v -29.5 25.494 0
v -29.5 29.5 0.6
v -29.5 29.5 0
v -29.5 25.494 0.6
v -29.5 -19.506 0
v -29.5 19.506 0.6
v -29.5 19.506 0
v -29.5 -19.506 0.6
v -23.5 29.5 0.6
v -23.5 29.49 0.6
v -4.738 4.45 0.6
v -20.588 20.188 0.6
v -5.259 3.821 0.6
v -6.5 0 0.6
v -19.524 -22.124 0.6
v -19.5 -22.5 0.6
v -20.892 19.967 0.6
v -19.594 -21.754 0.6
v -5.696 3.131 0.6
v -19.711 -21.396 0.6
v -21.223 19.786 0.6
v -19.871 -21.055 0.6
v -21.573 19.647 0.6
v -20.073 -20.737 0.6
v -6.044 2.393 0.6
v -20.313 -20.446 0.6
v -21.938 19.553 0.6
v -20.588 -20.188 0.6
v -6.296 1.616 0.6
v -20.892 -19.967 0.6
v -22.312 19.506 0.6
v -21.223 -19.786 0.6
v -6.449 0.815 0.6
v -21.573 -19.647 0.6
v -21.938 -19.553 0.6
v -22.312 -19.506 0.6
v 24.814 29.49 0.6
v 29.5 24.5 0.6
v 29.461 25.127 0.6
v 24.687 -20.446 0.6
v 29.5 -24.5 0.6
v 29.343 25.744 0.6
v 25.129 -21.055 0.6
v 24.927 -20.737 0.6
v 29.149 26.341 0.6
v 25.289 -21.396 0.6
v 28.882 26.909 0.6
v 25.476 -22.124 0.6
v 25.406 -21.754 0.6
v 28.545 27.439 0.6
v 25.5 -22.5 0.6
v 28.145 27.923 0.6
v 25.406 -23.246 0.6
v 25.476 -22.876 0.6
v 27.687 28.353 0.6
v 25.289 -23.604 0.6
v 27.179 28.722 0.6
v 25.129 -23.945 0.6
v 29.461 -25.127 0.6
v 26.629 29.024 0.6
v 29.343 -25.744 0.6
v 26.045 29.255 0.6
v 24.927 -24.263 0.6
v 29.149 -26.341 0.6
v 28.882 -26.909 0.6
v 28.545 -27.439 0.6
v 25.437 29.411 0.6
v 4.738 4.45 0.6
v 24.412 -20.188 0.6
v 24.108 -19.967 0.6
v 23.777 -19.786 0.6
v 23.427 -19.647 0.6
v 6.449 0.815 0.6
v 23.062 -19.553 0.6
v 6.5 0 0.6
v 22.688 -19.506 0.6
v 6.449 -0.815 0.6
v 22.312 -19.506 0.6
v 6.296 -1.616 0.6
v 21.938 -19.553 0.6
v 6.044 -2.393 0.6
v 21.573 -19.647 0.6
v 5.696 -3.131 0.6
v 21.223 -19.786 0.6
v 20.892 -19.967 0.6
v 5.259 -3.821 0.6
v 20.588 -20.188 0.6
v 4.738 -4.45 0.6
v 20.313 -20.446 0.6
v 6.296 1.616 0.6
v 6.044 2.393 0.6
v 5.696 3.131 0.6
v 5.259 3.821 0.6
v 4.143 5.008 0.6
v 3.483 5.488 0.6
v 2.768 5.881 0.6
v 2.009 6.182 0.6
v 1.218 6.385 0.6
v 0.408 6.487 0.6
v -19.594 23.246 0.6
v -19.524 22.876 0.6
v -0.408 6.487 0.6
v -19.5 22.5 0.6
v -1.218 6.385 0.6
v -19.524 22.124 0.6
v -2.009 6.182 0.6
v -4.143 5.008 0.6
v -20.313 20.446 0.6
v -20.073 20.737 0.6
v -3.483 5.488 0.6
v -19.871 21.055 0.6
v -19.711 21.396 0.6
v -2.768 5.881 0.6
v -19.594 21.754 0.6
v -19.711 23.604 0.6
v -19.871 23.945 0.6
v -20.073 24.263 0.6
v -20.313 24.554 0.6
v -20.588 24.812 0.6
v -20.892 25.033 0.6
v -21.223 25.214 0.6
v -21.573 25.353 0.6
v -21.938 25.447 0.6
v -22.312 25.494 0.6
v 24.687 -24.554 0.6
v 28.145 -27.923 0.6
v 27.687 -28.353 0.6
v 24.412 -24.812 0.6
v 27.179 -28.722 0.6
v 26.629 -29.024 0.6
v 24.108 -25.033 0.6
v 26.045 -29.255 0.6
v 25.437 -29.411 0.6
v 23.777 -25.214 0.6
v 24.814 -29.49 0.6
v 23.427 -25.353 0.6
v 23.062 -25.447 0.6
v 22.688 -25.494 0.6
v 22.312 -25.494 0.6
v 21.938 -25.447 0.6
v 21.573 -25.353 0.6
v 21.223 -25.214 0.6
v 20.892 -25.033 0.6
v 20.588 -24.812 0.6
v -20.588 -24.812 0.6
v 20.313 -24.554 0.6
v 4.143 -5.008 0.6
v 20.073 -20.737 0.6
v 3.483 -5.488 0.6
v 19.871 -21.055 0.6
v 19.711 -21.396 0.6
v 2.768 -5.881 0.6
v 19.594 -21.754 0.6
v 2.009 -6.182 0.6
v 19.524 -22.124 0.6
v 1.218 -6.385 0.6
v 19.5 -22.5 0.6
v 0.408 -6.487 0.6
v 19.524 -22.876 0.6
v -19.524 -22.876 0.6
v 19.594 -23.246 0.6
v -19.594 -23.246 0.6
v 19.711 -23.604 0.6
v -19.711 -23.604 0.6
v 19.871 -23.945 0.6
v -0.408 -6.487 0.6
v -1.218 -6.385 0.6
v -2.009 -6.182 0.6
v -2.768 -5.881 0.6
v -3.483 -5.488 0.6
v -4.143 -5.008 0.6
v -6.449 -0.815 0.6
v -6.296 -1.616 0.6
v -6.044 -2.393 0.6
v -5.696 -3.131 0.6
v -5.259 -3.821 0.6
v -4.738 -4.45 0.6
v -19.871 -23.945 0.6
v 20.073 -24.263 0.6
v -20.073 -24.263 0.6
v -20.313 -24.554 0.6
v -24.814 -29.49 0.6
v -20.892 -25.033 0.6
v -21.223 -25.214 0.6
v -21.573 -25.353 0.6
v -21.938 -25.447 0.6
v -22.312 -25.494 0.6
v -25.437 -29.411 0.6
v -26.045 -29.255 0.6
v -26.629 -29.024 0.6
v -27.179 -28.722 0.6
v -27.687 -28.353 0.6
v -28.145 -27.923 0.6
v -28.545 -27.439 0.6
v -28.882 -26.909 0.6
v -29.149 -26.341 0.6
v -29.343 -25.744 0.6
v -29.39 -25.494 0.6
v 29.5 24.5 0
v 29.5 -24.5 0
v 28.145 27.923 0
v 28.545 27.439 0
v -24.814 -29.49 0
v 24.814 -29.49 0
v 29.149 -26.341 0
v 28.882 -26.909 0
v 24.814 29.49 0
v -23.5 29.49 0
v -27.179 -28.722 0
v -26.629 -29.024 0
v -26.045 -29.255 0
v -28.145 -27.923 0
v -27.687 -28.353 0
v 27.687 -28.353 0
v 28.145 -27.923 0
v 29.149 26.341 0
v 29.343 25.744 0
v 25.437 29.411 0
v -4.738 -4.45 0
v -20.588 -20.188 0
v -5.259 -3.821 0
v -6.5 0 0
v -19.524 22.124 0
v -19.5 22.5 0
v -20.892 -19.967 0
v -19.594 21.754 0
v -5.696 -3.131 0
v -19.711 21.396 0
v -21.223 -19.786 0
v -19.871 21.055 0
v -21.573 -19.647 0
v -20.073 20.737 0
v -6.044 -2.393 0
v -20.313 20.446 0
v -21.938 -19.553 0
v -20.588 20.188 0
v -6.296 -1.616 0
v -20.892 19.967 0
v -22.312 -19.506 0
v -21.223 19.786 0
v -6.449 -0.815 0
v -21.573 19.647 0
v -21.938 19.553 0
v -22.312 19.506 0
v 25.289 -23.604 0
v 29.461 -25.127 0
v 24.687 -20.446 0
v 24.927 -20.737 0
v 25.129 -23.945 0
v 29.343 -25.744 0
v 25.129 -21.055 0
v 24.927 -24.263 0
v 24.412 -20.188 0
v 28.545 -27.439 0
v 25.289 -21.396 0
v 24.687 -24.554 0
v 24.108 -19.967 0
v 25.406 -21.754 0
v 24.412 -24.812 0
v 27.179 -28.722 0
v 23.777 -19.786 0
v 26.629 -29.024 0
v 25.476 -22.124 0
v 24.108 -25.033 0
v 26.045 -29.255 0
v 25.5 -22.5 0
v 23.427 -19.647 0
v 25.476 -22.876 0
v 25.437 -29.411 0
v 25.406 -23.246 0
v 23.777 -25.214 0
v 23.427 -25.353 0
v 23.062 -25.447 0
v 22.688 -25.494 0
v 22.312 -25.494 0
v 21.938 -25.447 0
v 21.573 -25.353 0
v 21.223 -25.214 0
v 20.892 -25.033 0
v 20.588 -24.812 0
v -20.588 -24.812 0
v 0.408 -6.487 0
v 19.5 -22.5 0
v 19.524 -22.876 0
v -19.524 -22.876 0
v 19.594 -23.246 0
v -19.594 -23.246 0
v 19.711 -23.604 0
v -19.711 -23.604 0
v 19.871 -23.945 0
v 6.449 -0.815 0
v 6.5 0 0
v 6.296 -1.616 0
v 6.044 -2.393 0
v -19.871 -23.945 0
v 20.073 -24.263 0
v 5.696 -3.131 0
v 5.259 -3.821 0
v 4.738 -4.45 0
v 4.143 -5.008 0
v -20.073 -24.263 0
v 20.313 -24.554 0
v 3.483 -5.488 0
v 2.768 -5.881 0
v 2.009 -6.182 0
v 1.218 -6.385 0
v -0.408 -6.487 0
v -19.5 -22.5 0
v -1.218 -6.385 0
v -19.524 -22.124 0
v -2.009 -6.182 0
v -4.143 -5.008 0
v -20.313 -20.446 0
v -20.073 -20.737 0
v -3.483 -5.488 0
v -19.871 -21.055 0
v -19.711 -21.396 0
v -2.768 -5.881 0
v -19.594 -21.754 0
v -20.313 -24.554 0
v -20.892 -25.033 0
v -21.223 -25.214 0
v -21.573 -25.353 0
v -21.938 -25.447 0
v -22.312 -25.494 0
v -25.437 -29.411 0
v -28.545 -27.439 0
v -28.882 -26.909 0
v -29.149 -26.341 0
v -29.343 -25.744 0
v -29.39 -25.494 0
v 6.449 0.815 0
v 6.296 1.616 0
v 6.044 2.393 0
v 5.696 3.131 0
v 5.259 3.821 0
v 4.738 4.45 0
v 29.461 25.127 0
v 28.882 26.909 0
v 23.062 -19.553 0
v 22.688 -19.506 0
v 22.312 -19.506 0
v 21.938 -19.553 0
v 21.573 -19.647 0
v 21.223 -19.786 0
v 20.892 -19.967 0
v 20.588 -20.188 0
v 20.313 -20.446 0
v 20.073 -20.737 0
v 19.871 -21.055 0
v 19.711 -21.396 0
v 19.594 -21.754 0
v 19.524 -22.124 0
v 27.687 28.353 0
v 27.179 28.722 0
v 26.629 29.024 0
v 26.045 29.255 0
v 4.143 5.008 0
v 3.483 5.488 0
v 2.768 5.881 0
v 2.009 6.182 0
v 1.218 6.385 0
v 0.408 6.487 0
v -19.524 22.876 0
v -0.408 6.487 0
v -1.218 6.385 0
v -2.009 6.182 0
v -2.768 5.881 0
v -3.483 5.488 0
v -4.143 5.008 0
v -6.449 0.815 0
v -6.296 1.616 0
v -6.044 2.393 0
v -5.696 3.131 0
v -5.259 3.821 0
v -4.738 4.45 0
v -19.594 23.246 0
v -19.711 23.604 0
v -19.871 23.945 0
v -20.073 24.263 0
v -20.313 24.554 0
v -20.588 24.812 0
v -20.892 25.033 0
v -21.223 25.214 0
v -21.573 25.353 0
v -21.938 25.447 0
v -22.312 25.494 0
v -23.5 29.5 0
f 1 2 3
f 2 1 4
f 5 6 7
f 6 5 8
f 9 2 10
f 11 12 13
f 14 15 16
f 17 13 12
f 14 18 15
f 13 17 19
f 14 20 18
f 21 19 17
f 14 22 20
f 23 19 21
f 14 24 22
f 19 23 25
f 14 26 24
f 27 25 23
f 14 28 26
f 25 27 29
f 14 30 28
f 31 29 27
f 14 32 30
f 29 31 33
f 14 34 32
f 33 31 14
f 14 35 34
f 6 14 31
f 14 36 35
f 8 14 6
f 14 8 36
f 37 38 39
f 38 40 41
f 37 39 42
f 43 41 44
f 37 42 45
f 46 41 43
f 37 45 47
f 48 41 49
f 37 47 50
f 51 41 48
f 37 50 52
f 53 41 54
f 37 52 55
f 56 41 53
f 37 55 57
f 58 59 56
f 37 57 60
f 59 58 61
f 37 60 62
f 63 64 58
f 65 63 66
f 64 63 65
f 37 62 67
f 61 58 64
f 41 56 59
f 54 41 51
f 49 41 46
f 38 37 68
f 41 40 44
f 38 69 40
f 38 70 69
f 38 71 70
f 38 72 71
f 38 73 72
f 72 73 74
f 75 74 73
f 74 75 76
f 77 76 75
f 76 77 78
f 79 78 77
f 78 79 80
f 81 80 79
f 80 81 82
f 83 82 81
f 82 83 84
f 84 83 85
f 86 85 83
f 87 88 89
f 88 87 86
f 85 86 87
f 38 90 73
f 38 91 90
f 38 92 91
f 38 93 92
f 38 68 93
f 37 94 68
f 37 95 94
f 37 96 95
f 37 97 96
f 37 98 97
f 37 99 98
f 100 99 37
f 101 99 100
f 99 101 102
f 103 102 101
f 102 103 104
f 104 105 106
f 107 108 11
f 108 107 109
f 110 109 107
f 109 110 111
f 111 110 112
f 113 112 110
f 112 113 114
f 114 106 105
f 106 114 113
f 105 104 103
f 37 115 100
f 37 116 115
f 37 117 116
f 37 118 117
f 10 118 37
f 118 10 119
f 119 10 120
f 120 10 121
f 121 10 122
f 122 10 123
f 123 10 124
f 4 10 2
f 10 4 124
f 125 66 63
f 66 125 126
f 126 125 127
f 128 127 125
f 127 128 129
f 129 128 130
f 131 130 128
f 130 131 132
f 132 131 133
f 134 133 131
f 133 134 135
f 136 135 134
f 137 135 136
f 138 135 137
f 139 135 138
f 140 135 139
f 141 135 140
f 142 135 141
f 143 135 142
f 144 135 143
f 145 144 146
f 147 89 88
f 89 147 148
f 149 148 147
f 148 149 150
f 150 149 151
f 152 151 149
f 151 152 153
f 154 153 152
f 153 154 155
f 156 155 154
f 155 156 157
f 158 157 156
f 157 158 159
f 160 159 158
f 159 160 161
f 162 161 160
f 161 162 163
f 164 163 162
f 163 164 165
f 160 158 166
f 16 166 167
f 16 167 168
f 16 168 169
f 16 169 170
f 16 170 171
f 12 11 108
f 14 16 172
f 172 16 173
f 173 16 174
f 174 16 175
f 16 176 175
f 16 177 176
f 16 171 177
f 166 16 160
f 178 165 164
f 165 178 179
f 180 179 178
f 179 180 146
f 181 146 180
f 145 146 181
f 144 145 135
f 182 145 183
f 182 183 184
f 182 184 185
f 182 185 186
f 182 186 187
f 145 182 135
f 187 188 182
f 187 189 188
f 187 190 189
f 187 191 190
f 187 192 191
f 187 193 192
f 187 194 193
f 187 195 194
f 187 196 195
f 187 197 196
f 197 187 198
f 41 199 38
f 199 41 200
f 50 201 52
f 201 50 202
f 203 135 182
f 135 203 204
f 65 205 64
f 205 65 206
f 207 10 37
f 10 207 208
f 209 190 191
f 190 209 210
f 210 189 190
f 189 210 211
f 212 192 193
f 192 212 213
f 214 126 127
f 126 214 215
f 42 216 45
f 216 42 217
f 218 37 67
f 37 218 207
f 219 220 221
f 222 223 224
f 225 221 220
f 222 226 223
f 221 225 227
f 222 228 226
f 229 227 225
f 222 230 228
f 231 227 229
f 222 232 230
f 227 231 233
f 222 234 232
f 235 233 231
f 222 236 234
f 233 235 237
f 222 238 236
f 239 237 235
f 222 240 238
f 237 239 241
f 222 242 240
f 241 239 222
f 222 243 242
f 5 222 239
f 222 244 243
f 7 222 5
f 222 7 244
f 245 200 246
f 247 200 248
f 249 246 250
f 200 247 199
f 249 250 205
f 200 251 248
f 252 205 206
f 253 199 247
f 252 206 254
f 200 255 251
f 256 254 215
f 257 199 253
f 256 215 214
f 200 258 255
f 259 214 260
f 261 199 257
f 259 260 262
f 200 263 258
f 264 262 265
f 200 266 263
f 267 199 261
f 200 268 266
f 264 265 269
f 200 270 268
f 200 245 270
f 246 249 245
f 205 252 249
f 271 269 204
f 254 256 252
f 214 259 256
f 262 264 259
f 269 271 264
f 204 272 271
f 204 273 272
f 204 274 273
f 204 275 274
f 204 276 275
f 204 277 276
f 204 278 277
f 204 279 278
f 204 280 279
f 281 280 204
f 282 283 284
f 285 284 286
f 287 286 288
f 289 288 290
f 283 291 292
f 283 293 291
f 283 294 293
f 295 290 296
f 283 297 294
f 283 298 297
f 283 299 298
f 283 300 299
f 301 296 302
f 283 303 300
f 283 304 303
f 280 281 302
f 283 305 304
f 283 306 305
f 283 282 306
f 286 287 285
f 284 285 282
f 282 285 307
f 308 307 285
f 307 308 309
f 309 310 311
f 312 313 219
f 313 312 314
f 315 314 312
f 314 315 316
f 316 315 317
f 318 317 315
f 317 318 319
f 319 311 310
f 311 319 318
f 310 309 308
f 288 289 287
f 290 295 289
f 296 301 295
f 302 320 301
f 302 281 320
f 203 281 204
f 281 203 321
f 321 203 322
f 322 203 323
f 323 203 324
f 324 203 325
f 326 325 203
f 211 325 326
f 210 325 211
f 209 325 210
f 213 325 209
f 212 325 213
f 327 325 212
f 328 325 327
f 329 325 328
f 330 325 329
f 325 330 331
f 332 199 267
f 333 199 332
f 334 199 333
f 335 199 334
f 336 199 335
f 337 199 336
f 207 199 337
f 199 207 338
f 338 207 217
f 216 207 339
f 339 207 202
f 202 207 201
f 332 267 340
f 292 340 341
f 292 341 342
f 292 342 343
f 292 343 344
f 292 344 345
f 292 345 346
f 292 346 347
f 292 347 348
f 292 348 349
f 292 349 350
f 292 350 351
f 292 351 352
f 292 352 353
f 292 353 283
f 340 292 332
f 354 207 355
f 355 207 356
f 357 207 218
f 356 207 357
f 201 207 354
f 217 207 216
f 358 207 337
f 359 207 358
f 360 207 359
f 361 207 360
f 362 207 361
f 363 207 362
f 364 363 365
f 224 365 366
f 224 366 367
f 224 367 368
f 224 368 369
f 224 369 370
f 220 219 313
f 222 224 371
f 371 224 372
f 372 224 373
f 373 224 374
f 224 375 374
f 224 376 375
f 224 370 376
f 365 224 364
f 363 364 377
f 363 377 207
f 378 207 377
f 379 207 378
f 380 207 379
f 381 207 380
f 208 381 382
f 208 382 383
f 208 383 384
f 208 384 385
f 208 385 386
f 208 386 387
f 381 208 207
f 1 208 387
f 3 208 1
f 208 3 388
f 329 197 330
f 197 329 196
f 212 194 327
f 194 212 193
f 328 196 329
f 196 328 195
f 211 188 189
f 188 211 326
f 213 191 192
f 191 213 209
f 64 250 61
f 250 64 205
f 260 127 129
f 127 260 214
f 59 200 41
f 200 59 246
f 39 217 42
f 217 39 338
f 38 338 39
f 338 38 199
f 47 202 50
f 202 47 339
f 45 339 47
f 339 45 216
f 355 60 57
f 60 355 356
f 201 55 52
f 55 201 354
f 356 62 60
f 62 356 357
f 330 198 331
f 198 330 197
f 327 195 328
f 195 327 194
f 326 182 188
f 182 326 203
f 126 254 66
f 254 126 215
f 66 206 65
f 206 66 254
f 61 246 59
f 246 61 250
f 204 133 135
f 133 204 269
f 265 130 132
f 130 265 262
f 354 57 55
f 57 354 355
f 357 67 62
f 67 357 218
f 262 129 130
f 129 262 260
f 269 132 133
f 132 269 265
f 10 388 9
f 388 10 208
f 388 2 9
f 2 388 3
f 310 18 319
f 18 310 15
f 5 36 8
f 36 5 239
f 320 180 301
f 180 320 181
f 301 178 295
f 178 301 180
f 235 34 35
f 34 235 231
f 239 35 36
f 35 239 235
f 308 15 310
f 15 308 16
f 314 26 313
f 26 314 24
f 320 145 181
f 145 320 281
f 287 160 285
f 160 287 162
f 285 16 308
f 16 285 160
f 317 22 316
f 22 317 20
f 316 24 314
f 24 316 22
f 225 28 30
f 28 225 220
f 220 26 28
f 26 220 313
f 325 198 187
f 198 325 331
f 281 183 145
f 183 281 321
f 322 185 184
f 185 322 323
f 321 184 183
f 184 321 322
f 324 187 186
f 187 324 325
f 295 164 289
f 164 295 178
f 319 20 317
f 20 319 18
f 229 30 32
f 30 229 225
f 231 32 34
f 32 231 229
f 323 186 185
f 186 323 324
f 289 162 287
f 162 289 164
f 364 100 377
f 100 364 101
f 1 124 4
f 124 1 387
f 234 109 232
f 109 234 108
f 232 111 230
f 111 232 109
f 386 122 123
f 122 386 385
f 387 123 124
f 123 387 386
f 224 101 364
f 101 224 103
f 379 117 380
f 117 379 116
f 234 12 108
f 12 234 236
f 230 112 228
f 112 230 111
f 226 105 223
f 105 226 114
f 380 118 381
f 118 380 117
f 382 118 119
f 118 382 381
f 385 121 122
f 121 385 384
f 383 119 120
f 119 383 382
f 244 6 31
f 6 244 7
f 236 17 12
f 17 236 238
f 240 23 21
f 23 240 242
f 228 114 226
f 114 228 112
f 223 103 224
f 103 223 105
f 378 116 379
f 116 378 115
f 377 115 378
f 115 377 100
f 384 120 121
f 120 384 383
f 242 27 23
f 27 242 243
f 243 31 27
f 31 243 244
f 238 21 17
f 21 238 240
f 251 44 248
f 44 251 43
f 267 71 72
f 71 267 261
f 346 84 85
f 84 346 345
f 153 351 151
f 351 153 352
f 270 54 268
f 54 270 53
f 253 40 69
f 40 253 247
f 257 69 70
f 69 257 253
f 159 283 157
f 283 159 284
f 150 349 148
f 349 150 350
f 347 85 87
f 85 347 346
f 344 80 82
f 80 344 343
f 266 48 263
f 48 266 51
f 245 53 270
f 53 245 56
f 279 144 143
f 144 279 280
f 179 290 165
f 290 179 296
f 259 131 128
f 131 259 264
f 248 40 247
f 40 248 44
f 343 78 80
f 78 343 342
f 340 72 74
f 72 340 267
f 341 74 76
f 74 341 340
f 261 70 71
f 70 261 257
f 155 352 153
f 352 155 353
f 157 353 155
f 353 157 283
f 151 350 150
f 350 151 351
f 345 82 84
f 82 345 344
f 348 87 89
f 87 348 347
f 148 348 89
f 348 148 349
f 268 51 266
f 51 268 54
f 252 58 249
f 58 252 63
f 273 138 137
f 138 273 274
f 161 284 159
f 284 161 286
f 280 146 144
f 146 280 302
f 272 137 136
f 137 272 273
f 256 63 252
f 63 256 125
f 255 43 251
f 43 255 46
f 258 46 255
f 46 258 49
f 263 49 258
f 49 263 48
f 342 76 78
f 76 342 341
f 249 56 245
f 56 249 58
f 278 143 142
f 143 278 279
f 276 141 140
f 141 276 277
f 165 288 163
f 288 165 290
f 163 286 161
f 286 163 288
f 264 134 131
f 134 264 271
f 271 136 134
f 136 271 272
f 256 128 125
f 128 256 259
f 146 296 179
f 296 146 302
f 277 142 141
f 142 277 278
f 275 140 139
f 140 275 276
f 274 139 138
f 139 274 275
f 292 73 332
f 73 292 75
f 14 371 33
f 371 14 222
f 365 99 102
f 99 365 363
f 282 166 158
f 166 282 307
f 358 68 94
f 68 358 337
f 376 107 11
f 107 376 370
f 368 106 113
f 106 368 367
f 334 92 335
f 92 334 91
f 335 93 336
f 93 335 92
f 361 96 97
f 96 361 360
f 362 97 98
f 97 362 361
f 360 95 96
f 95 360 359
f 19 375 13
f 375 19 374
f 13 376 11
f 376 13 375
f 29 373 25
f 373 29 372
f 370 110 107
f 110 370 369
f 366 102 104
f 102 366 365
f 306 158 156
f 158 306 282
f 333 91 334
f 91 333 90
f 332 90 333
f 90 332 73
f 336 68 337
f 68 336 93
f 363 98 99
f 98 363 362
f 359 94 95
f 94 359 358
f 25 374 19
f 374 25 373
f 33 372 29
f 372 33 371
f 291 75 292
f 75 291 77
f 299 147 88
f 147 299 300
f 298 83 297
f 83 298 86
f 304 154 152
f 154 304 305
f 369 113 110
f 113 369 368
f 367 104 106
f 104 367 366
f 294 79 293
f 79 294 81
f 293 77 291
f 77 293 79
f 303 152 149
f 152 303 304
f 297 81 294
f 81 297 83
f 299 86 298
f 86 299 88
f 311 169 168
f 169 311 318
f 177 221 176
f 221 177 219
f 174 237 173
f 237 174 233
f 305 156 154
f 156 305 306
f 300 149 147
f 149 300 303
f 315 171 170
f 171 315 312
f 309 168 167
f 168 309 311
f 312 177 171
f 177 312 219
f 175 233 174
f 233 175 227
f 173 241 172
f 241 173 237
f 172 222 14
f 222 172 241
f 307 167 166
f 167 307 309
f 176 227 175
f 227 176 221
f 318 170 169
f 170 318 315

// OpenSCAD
$fn = 50;


difference() {
	union() {
		translate(v = [0, 0, 0]) {
			rotate(a = [0, 0, 0]) {
				hull() {
					translate(v = [-24.5000000000, 24.5000000000, 0]) {
						rotate(a = [0, 0, 0]) {
							translate(v = [0, 0, 0]) {
								rotate(a = [0, 0, 0]) {
									cylinder(h = 0.6000000000, r = 5);
								}
							}
						}
					}
					translate(v = [24.5000000000, 24.5000000000, 0]) {
						rotate(a = [0, 0, 0]) {
							translate(v = [0, 0, 0]) {
								rotate(a = [0, 0, 0]) {
									cylinder(h = 0.6000000000, r = 5);
								}
							}
						}
					}
					translate(v = [-24.5000000000, -24.5000000000, 0]) {
						rotate(a = [0, 0, 0]) {
							translate(v = [0, 0, 0]) {
								rotate(a = [0, 0, 0]) {
									cylinder(h = 0.6000000000, r = 5);
								}
							}
						}
					}
					translate(v = [24.5000000000, -24.5000000000, 0]) {
						rotate(a = [0, 0, 0]) {
							translate(v = [0, 0, 0]) {
								rotate(a = [0, 0, 0]) {
									cylinder(h = 0.6000000000, r = 5);
								}
							}
						}
					}
				}
			}
		}
		translate(v = [-29.5000000000, 23.5000000000, 0]) {
			rotate(a = [0, 0, 0]) {
				cube(size = [6, 6, 0.6000000000]);
			}
		}
	}
	union() {
		translate(v = [-30.0000000000, -22.5000000000, -125]) {
			rotate(a = [0, 0, 0]) {
				hull() {
					translate(v = [7.5000000000, 0, 0]) {
						rotate(a = [0, 0, 0]) {
							translate(v = [0, 0, 0]) {
								rotate(a = [0, 0, 0]) {
									cylinder(h = 250, r = 3.0000000000);
								}
							}
						}
					}
					translate(v = [-7.5000000000, 0, 0]) {
						rotate(a = [0, 0, 0]) {
							translate(v = [0, 0, 0]) {
								rotate(a = [0, 0, 0]) {
									cylinder(h = 250, r = 3.0000000000);
								}
							}
						}
					}
				}
			}
		}
		translate(v = [-30.0000000000, 22.5000000000, -125]) {
			rotate(a = [0, 0, 0]) {
				hull() {
					translate(v = [7.5000000000, 0, 0]) {
						rotate(a = [0, 0, 0]) {
							translate(v = [0, 0, 0]) {
								rotate(a = [0, 0, 0]) {
									cylinder(h = 250, r = 3.0000000000);
								}
							}
						}
					}
					translate(v = [-7.5000000000, 0, 0]) {
						rotate(a = [0, 0, 0]) {
							translate(v = [0, 0, 0]) {
								rotate(a = [0, 0, 0]) {
									cylinder(h = 250, r = 3.0000000000);
								}
							}
						}
					}
				}
			}
		}
		translate(v = [22.5000000000, -22.5000000000, -125.0000000000]) {
			rotate(a = [0, 0, 0]) {
				cylinder(h = 250, r = 3.0000000000);
			}
		}
		translate(v = [0, 0, 0.0000000000]) {
			rotate(a = [0, 0, 0]) {
				cylinder(h = 0.6000000000, r = 6.5000000000);
			}
		}
	}
}
